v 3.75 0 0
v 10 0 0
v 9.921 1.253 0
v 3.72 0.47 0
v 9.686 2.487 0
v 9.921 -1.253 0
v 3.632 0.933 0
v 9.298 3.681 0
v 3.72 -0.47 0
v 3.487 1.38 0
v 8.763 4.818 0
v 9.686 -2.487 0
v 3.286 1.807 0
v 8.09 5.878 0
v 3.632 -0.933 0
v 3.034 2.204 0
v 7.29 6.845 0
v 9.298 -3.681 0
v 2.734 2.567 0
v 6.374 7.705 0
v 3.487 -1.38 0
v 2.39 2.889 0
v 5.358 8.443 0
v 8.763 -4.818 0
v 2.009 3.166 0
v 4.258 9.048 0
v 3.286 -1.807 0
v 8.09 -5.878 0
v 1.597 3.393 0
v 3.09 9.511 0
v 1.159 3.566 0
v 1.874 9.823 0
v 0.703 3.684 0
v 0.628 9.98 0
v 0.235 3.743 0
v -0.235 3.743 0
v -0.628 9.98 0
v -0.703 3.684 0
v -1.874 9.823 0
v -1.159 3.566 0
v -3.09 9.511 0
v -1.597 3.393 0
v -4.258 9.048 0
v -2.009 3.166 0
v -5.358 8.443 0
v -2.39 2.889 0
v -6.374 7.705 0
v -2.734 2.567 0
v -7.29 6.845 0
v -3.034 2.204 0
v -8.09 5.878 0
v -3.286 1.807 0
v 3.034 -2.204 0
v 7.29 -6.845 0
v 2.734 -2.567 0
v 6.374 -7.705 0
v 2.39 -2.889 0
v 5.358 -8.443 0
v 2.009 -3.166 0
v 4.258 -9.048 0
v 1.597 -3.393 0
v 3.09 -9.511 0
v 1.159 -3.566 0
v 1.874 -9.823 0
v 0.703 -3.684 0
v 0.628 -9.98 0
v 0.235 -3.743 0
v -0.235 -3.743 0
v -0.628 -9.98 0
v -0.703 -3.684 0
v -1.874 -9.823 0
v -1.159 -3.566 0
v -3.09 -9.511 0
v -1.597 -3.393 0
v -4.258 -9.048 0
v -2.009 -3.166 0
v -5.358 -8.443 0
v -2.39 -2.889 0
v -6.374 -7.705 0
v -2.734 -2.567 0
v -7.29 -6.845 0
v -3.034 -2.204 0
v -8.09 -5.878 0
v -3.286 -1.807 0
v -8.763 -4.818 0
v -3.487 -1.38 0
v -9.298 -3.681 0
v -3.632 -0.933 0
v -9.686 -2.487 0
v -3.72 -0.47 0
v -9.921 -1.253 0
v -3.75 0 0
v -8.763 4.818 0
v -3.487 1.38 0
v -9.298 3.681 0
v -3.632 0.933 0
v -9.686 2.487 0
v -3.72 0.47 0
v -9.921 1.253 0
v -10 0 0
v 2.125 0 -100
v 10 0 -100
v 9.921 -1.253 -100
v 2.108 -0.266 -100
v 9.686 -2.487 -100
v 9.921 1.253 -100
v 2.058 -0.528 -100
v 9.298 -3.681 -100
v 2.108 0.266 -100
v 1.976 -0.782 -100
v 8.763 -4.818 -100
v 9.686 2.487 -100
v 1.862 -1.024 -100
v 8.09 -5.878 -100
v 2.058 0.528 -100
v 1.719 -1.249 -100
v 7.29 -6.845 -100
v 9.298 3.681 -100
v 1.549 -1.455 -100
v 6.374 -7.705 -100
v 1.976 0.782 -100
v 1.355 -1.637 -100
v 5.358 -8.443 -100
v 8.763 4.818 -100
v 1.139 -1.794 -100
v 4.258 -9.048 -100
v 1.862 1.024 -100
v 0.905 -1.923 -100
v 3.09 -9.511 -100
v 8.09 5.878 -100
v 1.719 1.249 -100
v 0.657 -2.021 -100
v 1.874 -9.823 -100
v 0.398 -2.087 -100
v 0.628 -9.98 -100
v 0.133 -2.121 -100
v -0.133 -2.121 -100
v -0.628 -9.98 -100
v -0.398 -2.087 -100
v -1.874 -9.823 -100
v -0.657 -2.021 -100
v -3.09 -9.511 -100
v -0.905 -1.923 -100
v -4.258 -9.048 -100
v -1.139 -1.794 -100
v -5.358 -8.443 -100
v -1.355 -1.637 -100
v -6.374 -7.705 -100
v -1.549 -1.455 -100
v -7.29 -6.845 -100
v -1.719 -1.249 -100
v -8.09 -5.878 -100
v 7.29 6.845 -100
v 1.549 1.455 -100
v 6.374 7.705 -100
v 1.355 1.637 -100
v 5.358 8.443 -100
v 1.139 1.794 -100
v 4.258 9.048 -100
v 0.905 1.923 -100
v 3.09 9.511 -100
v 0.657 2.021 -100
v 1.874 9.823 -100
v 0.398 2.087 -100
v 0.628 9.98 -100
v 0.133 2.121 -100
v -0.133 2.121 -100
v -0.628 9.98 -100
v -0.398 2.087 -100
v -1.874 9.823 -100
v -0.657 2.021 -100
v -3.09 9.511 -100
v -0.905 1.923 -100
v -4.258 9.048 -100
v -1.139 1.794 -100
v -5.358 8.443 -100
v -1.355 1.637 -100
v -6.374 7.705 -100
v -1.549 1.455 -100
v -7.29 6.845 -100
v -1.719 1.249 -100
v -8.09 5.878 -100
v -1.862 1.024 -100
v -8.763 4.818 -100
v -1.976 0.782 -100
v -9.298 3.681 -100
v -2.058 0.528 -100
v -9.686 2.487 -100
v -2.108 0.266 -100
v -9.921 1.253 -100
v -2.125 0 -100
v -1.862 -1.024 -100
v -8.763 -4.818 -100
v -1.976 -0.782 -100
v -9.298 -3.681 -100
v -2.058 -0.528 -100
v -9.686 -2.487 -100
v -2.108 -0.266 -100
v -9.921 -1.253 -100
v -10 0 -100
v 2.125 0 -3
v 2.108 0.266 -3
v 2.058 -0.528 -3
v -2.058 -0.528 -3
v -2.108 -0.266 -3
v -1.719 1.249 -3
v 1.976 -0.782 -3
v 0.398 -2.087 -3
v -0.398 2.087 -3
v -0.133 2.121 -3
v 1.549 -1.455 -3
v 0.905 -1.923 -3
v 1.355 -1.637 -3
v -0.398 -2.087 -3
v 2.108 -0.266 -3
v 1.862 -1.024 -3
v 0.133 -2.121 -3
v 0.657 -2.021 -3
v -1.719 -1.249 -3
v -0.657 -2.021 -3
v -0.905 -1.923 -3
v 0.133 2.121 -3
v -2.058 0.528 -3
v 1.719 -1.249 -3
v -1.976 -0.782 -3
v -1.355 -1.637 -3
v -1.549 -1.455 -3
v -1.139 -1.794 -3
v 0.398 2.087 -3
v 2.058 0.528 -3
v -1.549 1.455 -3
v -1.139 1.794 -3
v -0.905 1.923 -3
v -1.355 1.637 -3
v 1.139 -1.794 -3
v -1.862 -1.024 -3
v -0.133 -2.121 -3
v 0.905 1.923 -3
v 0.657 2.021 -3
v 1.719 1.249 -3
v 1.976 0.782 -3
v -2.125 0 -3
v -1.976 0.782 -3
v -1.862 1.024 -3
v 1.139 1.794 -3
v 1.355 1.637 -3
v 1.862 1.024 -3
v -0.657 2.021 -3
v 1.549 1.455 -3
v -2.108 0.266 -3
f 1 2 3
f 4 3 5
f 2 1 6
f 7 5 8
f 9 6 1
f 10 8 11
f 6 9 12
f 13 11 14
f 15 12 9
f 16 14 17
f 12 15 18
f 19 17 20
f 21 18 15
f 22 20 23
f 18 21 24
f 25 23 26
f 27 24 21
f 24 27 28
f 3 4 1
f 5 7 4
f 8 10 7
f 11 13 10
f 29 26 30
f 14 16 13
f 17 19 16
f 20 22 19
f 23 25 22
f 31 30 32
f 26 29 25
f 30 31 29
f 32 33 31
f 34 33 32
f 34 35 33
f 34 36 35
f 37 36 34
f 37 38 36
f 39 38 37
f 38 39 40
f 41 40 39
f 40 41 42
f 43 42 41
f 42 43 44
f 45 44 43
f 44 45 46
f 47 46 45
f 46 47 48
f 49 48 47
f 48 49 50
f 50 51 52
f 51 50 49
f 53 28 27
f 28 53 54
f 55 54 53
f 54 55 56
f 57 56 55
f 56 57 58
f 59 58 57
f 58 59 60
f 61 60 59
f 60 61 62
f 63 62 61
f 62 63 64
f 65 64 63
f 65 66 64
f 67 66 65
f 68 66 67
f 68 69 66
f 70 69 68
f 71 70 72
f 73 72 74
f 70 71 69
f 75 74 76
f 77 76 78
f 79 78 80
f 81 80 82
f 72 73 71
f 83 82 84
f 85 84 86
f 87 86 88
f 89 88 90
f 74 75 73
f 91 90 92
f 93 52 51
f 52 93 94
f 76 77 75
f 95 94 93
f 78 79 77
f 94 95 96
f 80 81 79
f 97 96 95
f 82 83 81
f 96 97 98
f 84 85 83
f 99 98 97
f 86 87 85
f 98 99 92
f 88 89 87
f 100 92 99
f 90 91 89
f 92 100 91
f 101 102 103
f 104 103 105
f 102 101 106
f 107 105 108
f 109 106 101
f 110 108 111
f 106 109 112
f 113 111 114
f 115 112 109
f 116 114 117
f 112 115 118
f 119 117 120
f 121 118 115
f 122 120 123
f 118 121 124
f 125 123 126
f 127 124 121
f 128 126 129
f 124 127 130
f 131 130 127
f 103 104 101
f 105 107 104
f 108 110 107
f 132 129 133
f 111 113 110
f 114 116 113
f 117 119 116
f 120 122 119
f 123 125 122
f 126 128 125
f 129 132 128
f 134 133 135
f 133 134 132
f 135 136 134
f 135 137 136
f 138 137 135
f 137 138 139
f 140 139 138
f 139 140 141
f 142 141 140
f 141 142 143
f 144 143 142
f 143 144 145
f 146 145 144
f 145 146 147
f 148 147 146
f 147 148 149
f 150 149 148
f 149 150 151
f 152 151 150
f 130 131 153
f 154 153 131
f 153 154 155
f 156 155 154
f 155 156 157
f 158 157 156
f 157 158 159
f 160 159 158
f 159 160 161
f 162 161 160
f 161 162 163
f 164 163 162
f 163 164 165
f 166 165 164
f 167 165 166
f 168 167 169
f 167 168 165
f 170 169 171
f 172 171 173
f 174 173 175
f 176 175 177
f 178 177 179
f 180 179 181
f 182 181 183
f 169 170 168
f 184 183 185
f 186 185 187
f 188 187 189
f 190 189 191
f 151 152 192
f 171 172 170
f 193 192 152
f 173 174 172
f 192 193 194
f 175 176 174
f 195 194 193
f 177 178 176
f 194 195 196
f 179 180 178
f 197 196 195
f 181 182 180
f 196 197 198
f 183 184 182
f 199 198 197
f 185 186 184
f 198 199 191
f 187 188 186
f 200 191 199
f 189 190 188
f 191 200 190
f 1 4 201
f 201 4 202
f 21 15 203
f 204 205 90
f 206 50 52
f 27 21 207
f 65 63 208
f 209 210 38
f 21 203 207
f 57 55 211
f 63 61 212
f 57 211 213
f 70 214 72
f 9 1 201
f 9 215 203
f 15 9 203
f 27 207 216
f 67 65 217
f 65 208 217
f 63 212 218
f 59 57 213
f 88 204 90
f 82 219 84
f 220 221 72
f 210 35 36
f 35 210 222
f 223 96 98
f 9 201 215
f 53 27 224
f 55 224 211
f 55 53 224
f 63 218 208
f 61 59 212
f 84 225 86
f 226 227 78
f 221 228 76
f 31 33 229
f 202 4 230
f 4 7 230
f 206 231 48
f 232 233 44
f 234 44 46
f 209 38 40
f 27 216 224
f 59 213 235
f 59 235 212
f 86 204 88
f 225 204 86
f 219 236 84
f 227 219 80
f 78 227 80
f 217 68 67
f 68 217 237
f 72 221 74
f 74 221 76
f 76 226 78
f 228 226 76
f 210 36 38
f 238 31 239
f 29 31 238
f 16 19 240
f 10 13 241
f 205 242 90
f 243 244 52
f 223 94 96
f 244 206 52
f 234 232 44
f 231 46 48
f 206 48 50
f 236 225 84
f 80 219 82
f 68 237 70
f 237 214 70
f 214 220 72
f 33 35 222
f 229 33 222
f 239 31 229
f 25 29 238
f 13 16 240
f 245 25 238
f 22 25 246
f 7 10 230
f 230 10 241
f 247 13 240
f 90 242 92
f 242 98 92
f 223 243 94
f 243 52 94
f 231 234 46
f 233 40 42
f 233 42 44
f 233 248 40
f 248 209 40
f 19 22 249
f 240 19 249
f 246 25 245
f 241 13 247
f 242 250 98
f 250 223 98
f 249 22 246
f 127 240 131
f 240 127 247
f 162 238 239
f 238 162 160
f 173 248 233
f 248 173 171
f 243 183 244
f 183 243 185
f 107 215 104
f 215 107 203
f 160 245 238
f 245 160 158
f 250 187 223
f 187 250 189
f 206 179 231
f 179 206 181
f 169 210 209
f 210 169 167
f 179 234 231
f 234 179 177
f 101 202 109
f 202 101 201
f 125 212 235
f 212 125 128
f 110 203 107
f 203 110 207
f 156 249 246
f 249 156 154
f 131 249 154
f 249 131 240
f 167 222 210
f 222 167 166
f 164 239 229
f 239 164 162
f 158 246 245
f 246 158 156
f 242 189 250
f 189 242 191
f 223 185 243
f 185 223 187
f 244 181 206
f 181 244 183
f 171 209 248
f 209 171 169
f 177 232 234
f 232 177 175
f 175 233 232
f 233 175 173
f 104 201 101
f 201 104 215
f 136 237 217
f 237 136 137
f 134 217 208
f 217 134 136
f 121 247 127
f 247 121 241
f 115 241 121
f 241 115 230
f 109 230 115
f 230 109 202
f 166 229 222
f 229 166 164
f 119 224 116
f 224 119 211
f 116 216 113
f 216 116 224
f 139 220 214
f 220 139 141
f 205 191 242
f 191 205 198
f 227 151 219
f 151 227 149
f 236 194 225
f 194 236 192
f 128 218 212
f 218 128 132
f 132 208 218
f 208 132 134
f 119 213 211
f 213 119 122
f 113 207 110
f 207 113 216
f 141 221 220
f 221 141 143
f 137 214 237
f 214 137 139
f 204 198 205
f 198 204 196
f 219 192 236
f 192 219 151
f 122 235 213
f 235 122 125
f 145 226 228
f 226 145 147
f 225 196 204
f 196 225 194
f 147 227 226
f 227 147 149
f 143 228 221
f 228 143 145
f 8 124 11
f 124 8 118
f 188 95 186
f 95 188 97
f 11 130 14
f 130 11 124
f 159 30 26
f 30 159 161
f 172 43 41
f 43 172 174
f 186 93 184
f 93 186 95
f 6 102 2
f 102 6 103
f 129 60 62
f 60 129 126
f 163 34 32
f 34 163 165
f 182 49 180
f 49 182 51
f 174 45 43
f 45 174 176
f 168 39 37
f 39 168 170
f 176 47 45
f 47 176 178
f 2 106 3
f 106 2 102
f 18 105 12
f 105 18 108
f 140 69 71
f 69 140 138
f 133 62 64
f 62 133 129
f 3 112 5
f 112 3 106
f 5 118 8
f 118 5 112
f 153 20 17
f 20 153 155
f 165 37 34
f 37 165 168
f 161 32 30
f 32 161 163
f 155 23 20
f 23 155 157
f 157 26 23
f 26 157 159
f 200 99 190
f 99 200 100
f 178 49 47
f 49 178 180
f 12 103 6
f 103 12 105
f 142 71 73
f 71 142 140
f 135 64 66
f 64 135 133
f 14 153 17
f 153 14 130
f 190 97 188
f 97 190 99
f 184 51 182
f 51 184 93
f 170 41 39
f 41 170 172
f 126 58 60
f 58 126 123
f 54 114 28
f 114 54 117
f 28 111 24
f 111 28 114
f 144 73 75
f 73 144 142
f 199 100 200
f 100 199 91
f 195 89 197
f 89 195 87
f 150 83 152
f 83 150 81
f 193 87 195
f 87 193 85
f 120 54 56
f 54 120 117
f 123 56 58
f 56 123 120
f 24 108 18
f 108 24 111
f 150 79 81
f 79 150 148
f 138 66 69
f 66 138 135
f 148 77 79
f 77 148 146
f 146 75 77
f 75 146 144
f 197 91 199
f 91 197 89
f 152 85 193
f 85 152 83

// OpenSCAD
$fn = 50;


difference() {
	union() {
		translate(v = [0, 0, -100.0000000000]) {
			cylinder(h = 100, r = 10.0000000000);
		}
		cylinder(h = 0, r = 20.0000000000);
	}
	union() {
		translate(v = [0, 0, 0]) {
			rotate(a = [0, 0, 0]) {
				difference() {
					union() {
						#translate(v = [0, 0, -100.0000000000]) {
							cylinder(h = 100, r = 2.0000000000);
						}
						#translate(v = [0, 0, -3]) {
							cylinder(h = 3, r = 10.0000000000, r1 = 2.1250000000, r2 = 3.7500000000);
						}
						#translate(v = [0, 0, -100.0000000000]) {
							cylinder(h = 100, r = 2.1250000000);
						}
						#translate(v = [0, 0, -100.0000000000]) {
							cylinder(h = 100, r = 2.0000000000);
						}
					}
					union();
				}
			}
		}
	}
}
